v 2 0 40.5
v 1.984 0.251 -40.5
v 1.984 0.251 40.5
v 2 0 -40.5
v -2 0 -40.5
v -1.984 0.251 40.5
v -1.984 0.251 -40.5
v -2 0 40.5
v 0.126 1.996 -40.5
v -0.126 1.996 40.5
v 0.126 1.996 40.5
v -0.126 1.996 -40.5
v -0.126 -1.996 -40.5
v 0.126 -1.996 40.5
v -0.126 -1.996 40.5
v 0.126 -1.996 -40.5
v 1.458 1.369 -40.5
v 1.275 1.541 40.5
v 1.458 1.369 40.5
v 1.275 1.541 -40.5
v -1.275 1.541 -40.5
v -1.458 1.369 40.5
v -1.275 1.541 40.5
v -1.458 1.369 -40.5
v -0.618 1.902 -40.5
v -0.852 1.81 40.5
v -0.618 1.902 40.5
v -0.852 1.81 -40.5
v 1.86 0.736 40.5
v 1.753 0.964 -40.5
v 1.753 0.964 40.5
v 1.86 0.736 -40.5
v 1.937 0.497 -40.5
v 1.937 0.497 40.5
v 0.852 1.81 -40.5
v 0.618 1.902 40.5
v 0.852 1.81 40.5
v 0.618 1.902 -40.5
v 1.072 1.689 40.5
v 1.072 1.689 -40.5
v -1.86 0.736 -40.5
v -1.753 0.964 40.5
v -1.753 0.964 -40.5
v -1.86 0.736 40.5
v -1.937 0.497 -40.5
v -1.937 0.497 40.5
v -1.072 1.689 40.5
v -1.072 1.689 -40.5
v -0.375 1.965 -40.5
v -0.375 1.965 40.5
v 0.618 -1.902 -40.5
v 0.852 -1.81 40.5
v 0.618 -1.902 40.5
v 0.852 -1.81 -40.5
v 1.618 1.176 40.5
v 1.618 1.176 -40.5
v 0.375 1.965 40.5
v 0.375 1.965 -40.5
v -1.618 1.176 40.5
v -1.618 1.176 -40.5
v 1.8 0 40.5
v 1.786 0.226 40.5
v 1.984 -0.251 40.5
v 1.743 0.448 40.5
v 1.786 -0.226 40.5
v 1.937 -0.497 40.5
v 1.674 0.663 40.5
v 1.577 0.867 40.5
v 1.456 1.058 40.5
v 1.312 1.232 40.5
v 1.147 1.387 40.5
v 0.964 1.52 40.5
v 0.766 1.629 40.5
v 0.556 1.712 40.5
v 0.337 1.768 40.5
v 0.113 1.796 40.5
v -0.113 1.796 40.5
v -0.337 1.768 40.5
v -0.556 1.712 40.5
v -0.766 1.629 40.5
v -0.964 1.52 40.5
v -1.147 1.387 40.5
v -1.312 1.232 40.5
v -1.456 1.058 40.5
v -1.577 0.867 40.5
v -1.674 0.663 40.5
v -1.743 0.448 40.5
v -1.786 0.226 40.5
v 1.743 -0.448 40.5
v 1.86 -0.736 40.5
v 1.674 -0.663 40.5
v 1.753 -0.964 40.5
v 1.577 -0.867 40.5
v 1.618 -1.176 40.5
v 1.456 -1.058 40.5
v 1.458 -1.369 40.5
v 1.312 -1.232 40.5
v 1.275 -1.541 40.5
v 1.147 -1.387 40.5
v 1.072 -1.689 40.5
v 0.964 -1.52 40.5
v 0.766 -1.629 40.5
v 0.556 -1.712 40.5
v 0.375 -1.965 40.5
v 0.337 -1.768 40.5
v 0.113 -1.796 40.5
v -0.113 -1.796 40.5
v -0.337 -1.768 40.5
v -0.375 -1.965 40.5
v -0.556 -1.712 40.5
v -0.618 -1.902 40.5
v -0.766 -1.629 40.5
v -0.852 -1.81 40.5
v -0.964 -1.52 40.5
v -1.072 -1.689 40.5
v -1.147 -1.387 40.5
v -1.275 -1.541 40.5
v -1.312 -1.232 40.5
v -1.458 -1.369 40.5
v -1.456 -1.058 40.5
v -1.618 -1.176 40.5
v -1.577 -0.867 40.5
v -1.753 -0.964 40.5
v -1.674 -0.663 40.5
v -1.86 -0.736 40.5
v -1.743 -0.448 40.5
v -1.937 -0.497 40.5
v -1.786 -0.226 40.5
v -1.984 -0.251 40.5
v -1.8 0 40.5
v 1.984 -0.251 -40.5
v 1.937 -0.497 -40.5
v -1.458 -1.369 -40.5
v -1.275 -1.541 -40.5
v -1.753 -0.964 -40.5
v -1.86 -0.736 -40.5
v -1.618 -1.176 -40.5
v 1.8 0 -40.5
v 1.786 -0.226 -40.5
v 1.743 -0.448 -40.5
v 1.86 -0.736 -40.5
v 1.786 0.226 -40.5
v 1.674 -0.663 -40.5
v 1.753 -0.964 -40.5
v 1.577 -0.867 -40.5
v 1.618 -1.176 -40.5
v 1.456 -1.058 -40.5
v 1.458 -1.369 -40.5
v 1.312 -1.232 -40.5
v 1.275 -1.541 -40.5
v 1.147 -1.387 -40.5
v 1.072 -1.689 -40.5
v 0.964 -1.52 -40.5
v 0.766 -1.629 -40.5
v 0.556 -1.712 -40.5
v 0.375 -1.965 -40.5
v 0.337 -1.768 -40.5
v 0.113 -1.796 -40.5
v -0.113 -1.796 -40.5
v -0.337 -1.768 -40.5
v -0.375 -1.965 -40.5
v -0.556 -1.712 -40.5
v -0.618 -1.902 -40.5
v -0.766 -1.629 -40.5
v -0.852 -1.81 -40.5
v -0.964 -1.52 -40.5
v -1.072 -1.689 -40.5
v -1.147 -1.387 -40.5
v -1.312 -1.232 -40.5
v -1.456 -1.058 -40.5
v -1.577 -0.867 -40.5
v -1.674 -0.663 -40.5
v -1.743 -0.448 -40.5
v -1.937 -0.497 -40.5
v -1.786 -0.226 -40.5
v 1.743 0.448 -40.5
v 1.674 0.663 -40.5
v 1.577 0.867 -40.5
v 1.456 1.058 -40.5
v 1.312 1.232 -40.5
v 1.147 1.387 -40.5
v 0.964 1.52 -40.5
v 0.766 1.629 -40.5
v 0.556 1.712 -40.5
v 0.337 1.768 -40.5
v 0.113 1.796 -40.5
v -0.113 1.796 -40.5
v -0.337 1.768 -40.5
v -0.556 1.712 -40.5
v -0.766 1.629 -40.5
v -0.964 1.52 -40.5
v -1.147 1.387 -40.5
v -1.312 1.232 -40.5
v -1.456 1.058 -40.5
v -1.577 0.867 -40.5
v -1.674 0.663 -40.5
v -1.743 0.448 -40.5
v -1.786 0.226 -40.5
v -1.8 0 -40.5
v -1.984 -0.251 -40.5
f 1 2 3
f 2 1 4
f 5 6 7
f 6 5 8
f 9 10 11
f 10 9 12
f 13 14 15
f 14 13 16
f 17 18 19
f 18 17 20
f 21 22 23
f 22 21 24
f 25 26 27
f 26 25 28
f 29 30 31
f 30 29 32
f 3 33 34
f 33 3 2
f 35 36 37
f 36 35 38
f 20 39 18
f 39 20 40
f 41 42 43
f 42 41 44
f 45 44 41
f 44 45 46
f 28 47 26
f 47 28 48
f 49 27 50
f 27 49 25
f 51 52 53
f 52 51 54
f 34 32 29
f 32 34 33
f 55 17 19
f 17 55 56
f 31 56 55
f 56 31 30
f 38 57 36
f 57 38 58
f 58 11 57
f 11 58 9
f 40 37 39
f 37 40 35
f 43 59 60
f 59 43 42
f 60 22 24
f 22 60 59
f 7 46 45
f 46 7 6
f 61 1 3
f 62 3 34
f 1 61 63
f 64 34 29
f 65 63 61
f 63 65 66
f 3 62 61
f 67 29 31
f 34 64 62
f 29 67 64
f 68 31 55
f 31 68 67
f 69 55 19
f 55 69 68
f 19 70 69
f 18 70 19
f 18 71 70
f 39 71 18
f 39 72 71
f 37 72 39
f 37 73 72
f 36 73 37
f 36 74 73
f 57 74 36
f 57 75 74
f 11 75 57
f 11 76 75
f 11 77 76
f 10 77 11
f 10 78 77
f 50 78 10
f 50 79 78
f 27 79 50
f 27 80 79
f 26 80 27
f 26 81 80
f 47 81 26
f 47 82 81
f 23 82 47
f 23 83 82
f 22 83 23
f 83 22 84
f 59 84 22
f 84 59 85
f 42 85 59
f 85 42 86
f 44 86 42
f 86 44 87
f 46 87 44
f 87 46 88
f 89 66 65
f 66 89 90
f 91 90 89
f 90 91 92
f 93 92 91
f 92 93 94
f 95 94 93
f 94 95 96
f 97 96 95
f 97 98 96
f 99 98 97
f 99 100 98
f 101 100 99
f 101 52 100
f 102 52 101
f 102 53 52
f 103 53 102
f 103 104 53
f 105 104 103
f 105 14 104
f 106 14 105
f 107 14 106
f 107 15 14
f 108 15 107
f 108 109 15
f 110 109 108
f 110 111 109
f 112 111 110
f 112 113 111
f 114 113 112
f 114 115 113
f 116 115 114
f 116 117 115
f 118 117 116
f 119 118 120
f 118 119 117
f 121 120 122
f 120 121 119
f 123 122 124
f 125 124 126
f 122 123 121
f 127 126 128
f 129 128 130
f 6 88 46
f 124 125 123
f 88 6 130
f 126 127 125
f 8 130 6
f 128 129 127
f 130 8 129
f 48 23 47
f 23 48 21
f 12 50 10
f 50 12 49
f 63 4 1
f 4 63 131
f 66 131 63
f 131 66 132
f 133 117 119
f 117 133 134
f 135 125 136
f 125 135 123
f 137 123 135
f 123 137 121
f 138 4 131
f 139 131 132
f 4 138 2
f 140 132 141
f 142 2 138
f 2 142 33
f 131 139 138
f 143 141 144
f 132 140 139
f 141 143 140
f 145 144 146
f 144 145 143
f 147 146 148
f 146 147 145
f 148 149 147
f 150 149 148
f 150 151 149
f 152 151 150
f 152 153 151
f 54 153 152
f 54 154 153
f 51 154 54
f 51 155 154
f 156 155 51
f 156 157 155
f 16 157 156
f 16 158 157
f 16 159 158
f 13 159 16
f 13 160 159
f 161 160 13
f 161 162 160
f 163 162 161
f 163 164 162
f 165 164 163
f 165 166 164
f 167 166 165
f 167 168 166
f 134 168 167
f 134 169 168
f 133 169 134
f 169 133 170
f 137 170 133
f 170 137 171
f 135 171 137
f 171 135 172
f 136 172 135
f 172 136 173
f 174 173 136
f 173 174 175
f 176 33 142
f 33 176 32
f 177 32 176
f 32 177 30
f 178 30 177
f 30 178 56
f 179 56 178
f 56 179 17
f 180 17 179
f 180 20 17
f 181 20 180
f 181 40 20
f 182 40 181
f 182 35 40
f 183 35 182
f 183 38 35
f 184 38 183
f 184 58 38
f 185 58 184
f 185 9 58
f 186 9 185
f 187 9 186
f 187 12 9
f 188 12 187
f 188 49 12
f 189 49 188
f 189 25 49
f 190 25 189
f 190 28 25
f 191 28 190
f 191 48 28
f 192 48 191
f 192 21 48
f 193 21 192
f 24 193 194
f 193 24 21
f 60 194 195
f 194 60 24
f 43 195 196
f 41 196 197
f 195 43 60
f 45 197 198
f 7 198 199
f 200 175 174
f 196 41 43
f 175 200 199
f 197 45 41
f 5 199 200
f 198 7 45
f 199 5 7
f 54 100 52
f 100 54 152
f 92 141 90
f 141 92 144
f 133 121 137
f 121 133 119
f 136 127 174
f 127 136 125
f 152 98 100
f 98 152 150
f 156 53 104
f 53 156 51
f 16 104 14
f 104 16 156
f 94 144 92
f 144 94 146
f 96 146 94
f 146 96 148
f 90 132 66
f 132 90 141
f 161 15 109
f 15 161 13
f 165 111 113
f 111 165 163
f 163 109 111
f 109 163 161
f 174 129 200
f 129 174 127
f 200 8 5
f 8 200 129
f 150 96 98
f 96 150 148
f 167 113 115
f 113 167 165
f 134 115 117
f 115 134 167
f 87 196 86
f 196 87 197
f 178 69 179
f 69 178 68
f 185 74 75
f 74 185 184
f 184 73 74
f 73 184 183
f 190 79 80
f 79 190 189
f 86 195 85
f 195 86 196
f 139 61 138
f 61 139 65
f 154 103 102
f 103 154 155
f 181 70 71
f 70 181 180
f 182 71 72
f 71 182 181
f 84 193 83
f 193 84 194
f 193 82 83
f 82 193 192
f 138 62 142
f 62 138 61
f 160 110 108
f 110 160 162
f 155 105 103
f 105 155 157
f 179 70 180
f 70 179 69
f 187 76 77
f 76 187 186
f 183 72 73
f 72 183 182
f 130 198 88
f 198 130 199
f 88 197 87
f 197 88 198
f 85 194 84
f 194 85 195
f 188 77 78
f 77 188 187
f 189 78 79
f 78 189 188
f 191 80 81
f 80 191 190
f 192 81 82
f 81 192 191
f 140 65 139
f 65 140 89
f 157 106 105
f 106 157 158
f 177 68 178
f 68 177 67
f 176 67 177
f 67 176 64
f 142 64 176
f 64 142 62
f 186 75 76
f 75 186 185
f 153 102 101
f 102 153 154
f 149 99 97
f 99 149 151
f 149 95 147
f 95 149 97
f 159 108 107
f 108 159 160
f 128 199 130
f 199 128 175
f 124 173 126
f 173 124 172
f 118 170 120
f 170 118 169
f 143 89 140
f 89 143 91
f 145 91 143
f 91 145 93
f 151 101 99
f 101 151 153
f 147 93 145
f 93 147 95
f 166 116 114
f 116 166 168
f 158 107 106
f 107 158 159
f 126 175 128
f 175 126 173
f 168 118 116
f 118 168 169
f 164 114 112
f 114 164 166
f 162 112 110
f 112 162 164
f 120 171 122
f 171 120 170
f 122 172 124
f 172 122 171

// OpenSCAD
$fn = 50;


difference() {
	union() {
		translate(v = [0, 0, -40.5000000000]) {
			cylinder(h = 81, r = 2.0000000000);
		}
	}
	union() {
		translate(v = [0, 0, -100.0000000000]) {
			cylinder(h = 200, r = 1.8000000000);
		}
	}
}
